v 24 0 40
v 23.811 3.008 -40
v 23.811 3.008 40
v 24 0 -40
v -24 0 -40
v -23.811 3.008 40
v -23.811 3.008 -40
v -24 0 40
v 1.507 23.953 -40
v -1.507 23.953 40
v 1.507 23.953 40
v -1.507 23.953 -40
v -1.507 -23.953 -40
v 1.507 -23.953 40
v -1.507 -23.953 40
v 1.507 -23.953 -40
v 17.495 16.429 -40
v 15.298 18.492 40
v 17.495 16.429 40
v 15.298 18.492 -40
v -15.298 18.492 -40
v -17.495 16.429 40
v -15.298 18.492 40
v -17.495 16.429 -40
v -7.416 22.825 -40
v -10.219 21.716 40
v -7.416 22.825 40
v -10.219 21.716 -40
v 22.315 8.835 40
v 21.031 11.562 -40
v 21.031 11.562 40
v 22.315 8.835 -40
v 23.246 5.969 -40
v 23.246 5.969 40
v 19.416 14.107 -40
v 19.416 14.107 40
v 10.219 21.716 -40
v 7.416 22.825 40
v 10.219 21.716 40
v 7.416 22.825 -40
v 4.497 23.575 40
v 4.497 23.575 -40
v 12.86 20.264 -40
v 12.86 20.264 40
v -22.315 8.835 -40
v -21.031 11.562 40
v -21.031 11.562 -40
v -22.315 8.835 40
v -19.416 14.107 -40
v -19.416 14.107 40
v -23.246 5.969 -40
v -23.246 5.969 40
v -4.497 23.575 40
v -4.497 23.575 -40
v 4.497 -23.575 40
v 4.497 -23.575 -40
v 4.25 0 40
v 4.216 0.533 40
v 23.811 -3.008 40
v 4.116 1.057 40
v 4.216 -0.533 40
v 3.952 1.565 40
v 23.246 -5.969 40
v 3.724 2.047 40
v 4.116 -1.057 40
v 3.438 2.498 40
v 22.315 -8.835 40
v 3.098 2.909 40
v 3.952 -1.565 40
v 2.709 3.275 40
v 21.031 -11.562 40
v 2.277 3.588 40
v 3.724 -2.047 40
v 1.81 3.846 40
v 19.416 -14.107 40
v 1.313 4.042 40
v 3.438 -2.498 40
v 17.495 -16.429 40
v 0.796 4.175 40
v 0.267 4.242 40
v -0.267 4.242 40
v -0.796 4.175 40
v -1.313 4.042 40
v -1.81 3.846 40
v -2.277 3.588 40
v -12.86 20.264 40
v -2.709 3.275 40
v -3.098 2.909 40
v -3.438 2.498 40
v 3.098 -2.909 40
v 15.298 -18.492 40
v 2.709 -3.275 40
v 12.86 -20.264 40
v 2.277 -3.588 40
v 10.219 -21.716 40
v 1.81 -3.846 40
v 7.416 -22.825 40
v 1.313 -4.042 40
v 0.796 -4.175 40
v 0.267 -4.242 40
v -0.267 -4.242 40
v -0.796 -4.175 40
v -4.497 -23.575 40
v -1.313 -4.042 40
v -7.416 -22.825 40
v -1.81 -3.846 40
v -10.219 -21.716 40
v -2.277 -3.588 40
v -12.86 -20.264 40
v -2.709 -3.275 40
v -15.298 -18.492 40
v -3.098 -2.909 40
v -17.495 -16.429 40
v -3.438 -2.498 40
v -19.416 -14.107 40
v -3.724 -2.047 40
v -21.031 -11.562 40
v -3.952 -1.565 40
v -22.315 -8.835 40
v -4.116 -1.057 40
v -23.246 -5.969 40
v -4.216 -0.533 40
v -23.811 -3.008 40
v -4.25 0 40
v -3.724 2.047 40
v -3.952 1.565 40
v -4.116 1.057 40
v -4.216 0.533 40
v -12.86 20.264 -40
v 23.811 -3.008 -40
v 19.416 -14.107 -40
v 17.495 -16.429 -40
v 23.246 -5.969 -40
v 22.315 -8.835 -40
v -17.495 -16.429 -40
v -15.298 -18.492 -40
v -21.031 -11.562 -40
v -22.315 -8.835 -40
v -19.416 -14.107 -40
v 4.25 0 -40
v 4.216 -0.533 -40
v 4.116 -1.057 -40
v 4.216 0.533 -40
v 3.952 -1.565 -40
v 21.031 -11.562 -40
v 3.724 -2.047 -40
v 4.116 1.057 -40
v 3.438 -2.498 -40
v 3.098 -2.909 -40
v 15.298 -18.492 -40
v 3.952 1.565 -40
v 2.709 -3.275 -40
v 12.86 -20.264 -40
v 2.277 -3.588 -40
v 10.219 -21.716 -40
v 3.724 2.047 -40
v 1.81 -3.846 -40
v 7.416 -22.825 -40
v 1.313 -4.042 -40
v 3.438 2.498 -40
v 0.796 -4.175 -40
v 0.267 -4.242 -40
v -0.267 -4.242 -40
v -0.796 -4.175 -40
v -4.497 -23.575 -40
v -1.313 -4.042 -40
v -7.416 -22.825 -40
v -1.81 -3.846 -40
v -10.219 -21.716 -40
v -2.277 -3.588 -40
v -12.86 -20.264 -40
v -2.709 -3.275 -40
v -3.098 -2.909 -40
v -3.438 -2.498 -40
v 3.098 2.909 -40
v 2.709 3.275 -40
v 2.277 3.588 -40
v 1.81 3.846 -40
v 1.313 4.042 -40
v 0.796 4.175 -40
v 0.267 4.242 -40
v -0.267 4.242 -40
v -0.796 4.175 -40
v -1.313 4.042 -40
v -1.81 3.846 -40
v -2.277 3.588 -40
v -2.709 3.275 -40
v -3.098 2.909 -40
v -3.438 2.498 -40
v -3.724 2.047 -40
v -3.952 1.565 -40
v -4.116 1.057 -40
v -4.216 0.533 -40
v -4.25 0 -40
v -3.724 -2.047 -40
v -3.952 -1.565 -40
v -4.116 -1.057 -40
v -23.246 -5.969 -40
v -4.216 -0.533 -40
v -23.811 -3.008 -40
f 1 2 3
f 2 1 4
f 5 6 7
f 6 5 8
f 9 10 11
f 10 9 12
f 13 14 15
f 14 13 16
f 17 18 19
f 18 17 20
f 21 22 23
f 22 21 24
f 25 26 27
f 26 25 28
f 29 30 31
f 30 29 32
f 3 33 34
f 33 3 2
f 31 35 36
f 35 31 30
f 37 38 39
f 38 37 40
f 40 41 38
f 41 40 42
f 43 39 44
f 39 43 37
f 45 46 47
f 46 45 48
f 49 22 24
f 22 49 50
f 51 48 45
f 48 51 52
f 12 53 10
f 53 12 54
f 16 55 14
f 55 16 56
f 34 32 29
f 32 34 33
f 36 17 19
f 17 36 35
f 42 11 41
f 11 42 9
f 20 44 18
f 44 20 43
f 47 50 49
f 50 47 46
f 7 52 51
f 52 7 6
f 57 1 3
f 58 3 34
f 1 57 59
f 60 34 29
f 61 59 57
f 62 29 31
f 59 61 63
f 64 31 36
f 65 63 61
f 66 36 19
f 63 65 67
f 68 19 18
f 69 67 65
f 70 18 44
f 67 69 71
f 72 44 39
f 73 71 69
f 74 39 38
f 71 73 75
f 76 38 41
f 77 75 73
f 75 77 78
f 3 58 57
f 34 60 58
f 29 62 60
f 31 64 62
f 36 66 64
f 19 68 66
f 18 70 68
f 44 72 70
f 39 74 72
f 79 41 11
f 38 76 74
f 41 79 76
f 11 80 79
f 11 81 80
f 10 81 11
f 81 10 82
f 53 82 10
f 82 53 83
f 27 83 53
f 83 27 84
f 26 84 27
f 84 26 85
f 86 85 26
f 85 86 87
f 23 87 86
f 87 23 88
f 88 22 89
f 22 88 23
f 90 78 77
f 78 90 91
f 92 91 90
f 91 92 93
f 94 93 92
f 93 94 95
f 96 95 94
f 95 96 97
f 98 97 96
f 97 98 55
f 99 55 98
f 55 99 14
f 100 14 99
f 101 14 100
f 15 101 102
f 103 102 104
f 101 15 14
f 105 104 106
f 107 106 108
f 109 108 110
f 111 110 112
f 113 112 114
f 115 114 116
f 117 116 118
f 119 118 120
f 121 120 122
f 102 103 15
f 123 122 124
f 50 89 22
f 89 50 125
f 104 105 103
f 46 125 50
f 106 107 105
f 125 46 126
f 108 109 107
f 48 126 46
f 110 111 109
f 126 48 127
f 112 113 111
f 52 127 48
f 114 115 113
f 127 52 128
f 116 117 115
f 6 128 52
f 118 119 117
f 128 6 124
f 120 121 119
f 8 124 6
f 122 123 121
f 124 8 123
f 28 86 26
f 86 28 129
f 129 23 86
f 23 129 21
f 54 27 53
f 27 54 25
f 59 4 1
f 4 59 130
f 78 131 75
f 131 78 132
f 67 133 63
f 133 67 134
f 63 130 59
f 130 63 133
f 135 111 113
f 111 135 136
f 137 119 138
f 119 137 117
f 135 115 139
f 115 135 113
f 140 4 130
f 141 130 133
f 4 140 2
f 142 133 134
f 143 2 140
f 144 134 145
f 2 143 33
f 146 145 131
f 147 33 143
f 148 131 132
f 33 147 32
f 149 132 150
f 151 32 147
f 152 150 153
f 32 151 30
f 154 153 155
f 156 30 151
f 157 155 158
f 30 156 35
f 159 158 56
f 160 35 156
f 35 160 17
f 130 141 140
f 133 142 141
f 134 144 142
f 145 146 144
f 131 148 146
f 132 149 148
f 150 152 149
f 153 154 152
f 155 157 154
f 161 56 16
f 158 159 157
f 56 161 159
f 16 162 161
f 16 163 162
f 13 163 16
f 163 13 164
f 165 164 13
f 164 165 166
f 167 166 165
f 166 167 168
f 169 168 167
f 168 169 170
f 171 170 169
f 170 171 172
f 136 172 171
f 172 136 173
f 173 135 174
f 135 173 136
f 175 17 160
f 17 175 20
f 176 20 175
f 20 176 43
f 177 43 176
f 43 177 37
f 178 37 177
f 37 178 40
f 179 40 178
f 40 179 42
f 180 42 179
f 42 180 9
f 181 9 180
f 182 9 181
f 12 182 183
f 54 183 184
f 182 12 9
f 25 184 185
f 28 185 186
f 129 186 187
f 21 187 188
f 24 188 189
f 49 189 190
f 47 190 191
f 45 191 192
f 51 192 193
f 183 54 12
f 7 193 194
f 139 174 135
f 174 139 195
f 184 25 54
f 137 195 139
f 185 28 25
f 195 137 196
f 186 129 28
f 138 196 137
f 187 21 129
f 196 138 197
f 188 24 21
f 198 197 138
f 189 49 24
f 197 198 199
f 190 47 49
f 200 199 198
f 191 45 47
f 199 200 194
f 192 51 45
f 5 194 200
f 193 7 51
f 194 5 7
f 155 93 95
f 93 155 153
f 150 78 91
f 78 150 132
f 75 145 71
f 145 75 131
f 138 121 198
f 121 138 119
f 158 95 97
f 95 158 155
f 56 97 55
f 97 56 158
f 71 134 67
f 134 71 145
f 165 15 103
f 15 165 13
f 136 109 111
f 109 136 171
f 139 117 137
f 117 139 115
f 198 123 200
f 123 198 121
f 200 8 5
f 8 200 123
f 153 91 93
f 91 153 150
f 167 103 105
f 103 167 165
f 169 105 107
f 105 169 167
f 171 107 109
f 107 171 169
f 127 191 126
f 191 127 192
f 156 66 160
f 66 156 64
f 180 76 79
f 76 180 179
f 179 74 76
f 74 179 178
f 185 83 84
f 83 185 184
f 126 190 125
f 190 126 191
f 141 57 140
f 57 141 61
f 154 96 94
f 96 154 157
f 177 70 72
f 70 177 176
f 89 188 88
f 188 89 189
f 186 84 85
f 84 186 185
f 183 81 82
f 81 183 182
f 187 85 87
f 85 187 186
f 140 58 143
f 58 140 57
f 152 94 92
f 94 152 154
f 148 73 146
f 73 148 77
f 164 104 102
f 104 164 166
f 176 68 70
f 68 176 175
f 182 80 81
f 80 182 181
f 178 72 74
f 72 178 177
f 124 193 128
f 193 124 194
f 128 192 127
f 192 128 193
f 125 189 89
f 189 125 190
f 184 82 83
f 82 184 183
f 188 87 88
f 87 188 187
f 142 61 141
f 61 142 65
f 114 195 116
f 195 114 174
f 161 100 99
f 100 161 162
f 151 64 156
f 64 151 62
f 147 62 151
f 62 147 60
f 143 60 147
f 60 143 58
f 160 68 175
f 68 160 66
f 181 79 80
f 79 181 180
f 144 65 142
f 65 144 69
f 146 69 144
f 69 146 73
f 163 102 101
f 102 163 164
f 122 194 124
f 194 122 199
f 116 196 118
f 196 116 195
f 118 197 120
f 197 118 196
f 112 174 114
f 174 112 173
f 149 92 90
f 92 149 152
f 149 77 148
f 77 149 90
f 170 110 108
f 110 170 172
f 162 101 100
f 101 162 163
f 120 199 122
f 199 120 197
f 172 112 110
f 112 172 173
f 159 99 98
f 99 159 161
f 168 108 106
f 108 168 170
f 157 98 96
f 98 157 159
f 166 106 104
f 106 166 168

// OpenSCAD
$fn = 50;


difference() {
	union() {
		translate(v = [0, 0, -40.0000000000]) {
			cylinder(h = 80, r = 24.0000000000);
		}
	}
	union() {
		translate(v = [0, 0, -100.0000000000]) {
			cylinder(h = 200, r = 4.2500000000);
		}
	}
}
